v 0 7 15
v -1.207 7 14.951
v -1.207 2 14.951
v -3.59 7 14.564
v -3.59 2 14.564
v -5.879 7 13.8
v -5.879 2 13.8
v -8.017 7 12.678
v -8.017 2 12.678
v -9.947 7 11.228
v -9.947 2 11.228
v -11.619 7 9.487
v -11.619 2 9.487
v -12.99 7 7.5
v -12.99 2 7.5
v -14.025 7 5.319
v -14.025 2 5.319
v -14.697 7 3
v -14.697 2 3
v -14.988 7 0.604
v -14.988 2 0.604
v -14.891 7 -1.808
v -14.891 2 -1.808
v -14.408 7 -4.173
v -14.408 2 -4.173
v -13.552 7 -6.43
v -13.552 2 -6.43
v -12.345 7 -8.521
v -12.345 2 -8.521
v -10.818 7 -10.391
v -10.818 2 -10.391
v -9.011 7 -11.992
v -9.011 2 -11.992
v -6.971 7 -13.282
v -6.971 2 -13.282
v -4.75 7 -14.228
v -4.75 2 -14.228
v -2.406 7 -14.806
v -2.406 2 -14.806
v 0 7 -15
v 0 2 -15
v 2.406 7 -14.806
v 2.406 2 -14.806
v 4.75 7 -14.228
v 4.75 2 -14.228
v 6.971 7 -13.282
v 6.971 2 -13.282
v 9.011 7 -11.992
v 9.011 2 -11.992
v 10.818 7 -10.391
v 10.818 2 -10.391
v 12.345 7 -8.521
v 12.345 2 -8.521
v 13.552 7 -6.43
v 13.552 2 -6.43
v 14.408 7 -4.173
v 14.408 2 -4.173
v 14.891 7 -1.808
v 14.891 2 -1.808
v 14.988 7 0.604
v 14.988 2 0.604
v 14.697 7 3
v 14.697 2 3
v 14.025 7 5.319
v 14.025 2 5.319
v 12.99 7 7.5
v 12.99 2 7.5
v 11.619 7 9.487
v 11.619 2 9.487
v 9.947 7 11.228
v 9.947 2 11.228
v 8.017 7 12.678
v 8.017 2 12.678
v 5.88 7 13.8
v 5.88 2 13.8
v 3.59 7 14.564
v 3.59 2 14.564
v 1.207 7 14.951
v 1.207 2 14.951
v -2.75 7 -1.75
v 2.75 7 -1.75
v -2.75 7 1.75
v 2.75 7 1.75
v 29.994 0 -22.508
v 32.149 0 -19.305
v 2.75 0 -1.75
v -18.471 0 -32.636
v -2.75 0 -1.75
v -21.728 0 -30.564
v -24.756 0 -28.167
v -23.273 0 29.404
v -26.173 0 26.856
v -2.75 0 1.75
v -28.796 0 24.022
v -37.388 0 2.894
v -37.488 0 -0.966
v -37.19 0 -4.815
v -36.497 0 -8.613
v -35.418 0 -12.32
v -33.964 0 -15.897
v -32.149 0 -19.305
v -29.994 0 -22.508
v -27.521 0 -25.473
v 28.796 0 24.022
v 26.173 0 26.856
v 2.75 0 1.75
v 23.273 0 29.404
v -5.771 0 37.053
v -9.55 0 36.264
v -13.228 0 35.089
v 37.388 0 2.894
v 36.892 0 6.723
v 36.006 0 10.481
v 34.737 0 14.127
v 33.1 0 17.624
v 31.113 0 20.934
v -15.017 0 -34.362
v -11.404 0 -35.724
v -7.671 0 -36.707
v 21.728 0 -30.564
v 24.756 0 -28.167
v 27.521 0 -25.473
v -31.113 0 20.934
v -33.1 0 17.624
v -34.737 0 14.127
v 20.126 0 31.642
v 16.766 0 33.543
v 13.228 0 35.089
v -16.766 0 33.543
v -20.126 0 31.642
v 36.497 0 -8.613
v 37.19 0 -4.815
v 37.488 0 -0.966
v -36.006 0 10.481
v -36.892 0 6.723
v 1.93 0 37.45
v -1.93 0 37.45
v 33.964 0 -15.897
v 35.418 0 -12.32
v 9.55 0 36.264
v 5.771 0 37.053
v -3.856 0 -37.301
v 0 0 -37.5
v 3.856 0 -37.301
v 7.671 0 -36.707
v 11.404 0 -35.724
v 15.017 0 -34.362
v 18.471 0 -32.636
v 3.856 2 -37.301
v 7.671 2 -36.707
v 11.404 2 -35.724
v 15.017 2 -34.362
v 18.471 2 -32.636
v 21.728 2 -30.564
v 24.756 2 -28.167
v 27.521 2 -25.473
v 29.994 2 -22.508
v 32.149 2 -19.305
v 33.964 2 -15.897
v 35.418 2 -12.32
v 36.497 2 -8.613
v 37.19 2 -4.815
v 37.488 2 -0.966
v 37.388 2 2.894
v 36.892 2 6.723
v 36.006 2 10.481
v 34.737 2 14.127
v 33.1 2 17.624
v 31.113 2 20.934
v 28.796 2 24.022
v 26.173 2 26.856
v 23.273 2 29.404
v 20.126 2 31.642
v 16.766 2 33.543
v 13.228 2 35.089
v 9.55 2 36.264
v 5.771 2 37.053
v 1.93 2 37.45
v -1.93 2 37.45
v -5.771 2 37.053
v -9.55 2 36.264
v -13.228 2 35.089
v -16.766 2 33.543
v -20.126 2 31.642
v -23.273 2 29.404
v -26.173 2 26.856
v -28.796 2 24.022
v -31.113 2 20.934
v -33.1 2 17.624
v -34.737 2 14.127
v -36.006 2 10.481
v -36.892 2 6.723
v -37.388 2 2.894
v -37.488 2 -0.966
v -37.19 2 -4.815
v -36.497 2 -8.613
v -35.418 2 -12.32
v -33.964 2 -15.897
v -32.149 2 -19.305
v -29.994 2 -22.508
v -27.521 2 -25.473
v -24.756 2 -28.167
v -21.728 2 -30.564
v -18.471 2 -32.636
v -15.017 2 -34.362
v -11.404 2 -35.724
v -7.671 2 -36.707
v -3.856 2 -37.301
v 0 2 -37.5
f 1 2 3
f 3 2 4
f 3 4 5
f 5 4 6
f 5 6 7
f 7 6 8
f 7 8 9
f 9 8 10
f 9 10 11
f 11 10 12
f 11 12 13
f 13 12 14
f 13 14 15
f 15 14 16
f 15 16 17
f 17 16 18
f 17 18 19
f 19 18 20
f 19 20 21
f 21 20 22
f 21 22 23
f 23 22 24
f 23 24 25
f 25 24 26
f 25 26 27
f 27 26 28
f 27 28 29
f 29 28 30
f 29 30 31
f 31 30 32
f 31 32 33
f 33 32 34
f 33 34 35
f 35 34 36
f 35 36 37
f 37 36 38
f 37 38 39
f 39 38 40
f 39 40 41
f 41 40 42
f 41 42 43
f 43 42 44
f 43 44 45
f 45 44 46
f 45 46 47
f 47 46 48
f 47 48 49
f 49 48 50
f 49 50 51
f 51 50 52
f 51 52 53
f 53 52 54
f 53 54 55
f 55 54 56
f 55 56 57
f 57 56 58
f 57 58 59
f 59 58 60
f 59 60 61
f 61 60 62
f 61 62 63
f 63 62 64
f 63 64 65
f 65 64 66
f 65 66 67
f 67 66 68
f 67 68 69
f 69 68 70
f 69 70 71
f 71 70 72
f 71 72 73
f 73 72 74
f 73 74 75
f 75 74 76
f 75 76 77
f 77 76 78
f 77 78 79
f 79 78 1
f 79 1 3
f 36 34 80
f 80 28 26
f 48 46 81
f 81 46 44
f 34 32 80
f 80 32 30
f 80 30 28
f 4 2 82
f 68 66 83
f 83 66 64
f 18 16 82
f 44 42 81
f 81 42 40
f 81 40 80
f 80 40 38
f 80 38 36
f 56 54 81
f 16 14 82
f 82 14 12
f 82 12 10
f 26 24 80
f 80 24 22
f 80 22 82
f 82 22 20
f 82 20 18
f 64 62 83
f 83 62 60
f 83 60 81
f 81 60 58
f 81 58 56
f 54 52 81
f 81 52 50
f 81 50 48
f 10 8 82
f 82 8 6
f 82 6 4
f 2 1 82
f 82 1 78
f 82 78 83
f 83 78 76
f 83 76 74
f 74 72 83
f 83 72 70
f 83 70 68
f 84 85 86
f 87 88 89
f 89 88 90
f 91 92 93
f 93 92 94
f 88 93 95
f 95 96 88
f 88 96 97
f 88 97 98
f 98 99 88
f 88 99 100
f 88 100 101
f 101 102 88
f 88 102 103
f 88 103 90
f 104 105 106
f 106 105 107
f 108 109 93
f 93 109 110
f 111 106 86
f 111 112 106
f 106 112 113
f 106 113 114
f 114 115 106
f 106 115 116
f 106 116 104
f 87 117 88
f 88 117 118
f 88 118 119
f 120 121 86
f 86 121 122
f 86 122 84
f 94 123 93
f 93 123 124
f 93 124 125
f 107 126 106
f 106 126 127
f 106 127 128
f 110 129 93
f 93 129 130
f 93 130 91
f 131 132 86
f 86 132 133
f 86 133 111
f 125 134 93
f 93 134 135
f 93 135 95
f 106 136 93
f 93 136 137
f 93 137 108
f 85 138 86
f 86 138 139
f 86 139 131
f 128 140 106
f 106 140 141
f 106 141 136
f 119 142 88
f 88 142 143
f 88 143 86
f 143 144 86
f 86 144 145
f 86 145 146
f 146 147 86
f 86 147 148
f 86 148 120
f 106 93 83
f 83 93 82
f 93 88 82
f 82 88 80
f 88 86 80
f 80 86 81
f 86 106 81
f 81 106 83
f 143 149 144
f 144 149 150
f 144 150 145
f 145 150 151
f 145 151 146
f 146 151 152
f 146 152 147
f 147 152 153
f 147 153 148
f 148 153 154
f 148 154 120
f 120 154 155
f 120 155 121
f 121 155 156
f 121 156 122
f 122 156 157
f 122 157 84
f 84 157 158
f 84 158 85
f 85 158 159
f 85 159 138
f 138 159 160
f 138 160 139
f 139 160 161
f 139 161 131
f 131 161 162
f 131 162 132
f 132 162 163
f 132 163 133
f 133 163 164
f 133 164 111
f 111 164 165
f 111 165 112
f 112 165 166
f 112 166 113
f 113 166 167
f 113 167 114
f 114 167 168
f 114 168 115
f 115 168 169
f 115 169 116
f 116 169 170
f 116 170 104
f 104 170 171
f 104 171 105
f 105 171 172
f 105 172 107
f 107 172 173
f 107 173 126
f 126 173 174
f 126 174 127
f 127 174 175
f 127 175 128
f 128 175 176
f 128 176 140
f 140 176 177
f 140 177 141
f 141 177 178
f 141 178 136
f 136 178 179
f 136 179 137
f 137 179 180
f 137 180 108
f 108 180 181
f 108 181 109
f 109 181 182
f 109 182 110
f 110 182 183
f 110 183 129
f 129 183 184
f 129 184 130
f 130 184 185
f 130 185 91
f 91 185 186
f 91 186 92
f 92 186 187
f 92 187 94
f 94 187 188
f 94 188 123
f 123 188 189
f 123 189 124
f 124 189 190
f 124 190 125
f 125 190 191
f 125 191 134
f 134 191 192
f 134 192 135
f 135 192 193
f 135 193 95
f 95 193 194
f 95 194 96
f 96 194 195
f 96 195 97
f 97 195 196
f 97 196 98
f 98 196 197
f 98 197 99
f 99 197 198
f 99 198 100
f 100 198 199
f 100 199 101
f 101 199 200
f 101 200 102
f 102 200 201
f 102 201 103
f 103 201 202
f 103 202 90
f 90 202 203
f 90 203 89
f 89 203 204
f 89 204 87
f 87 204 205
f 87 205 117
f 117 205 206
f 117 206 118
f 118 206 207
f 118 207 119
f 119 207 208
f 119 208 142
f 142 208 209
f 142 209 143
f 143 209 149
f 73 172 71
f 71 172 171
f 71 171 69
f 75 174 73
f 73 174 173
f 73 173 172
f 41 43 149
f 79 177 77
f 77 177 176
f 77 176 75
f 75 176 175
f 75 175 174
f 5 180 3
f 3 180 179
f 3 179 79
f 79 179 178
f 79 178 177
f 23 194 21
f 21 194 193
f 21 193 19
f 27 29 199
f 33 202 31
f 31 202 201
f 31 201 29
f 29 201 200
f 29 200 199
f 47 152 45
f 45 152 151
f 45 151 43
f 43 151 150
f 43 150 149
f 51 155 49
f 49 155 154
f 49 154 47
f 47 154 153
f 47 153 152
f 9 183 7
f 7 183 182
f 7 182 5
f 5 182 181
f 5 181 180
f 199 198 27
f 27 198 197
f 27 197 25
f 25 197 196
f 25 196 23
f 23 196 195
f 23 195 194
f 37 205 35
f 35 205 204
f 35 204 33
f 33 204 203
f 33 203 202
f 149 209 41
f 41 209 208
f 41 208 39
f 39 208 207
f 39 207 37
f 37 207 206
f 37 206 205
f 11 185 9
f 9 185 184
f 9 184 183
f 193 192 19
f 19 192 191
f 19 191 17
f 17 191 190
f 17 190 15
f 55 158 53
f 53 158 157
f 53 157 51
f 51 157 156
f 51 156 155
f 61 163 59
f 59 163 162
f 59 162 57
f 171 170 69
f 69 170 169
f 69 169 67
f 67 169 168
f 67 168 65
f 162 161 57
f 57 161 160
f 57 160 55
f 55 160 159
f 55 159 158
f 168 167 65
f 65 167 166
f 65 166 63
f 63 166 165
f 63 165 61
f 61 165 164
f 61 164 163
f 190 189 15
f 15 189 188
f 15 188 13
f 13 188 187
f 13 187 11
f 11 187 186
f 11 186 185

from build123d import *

# Parameters (mm, degrees)
SKETCH_1_R          = 15
EXTRUDE_1_DEPTH     = 7
SKETCH_2_W          = 5.5
SKETCH_2_H          = 3.5
CUT_EXTRUDE_1_DEPTH = 23.338307904
SKETCH_3_R          = 37.5
SKETCH_3_R_2        = 10.340446081
EXTRUDE_2_DEPTH     = 2


with BuildPart() as part:
    # 草图1 → 凸台-拉伸1 (new body)
    with BuildSketch(Plane(origin=(0, 0, 0), x_dir=(1, 0, 0), z_dir=(0, 1, 0))):
        with Locations(Location((0, 0, 0), (0, 0, 270))):
            Circle(SKETCH_1_R)
    extrude(amount=EXTRUDE_1_DEPTH)

    # 草图2 → 切除-拉伸1 (cut, through all)
    with BuildSketch(Plane(origin=(0, 7, 0), x_dir=(1, 0, 0), z_dir=(0, 1, 0))):
        Rectangle(SKETCH_2_W, SKETCH_2_H)
    extrude(amount=-CUT_EXTRUDE_1_DEPTH, mode=Mode.SUBTRACT)

    # 草图3 → 凸台-拉伸2 (add)
    with BuildSketch(Plane.XZ):
        with Locations(Location((0, 0, 0), (0, 0, 270))):
            Circle(SKETCH_3_R)
        Circle(SKETCH_3_R_2, mode=Mode.SUBTRACT)
    extrude(amount=-EXTRUDE_2_DEPTH)


solid = part.part
